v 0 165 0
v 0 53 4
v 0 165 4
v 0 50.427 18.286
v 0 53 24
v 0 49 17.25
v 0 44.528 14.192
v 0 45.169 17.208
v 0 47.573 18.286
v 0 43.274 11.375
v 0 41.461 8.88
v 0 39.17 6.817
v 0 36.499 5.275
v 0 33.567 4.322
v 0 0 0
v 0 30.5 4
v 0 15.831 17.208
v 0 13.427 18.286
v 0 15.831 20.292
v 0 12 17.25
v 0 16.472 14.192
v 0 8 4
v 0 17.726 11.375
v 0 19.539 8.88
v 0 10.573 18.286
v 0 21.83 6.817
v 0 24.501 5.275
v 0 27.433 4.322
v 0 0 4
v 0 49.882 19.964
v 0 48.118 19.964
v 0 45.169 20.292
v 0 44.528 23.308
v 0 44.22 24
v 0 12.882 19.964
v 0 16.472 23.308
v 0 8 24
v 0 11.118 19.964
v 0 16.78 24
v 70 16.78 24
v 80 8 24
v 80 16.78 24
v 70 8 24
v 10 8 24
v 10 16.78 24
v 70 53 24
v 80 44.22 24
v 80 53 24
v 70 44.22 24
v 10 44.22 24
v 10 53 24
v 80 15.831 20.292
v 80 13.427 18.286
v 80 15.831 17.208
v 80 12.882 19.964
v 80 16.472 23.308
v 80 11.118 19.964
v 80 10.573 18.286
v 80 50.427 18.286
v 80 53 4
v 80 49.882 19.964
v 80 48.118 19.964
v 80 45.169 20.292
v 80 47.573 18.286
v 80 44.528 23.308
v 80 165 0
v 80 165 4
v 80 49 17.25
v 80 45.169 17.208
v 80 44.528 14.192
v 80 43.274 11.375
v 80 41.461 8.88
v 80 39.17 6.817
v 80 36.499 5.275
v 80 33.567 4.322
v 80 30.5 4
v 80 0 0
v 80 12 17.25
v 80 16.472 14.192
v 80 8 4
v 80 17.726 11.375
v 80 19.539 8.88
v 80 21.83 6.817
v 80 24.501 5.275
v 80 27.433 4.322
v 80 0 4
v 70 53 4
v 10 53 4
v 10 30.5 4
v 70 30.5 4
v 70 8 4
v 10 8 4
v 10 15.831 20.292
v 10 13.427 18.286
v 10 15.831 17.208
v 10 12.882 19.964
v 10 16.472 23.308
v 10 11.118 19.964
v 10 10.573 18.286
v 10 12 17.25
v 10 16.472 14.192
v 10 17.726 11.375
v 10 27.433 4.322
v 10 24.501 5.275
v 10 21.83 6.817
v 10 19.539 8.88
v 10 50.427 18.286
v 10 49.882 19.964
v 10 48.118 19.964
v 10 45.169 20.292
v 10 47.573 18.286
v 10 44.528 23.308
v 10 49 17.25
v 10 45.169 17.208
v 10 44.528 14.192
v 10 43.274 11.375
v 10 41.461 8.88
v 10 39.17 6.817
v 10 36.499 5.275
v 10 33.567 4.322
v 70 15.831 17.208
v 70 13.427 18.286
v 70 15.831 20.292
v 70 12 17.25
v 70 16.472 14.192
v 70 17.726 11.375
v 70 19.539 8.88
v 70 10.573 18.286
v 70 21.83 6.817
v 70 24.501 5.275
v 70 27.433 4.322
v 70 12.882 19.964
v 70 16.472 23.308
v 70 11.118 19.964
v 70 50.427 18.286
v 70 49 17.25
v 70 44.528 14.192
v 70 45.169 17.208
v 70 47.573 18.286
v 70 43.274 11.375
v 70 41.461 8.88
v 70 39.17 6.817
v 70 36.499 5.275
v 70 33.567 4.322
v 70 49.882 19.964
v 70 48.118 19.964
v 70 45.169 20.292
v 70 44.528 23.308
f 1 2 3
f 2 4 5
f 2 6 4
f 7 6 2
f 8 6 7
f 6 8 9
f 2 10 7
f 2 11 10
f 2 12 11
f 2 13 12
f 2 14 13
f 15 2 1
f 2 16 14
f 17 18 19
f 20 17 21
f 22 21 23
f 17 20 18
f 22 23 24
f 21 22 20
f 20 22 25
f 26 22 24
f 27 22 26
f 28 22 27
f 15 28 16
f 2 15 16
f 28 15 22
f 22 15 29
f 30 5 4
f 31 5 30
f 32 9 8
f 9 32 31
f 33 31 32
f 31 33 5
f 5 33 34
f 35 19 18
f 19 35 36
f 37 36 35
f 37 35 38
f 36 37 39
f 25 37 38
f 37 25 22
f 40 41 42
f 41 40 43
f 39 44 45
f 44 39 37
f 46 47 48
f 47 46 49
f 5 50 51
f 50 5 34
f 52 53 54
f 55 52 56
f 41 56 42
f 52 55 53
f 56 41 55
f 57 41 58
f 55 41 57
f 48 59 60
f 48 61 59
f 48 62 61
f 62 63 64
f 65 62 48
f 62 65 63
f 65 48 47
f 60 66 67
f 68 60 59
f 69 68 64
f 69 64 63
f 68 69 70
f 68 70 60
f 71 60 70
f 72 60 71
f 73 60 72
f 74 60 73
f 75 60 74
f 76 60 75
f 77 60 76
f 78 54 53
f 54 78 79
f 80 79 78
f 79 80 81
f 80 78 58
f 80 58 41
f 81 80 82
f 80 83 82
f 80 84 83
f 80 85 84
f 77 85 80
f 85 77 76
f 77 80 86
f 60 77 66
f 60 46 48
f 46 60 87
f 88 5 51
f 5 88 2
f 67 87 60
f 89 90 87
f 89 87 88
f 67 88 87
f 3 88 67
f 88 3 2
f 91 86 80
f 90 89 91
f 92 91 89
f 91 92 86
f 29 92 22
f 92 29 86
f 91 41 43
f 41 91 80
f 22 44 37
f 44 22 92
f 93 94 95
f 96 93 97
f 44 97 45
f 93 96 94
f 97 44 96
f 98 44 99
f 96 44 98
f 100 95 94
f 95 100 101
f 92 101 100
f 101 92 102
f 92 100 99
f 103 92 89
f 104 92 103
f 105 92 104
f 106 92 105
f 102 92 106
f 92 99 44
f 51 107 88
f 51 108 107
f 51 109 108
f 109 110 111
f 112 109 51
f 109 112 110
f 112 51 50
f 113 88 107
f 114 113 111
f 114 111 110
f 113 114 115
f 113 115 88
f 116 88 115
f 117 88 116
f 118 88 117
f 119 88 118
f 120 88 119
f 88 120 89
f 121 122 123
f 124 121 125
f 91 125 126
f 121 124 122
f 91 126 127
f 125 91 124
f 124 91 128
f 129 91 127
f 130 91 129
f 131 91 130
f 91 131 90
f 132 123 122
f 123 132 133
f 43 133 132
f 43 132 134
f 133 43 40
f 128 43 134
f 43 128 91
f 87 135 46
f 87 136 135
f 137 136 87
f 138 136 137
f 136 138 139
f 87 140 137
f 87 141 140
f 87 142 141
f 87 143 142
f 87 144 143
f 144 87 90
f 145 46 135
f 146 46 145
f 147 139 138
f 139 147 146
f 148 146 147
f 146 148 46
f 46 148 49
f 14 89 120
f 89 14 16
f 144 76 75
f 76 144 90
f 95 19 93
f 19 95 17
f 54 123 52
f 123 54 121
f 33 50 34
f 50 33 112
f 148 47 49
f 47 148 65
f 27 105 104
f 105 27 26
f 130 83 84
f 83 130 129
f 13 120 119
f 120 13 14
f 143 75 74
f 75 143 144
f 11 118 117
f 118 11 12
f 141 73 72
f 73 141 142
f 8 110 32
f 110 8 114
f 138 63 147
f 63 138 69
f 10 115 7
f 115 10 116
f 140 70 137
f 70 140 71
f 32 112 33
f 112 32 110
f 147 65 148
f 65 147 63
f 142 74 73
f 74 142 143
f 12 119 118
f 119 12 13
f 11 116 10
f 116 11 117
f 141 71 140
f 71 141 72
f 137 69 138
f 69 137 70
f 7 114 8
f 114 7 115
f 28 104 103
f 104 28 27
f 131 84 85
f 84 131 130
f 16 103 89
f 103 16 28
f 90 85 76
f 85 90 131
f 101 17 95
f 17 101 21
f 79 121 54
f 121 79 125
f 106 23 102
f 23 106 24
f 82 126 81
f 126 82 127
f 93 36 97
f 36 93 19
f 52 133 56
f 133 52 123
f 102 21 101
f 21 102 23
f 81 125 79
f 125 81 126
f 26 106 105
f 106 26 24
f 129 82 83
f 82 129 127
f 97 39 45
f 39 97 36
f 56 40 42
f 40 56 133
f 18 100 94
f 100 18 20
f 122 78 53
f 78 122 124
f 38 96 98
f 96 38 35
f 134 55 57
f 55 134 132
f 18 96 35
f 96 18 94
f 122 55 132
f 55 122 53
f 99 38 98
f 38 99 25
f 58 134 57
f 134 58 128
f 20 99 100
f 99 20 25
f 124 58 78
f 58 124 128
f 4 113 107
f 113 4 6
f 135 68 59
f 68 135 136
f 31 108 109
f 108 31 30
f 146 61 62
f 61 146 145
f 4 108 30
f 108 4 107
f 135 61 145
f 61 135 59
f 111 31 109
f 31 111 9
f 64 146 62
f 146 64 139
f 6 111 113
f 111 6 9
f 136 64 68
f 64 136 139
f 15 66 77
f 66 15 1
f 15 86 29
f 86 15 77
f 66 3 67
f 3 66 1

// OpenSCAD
cube ([80,165,4]);

translate([0,8,4])
difference(){
cube ([80,45,20]);
    
translate ([10,0,0])
cube ([60,45,20]);
    
translate ([0,45/2,29.5/2])
rotate([0,90,0])
cylinder (d=29.5,h=80);
    
translate ([0,4,29.5/2])
rotate([0,90,0])
cylinder (d=3,h=80);
    
translate ([0,41,29.5/2])
rotate([0,90,0])
cylinder (d=3,h=80);
    

}

    
